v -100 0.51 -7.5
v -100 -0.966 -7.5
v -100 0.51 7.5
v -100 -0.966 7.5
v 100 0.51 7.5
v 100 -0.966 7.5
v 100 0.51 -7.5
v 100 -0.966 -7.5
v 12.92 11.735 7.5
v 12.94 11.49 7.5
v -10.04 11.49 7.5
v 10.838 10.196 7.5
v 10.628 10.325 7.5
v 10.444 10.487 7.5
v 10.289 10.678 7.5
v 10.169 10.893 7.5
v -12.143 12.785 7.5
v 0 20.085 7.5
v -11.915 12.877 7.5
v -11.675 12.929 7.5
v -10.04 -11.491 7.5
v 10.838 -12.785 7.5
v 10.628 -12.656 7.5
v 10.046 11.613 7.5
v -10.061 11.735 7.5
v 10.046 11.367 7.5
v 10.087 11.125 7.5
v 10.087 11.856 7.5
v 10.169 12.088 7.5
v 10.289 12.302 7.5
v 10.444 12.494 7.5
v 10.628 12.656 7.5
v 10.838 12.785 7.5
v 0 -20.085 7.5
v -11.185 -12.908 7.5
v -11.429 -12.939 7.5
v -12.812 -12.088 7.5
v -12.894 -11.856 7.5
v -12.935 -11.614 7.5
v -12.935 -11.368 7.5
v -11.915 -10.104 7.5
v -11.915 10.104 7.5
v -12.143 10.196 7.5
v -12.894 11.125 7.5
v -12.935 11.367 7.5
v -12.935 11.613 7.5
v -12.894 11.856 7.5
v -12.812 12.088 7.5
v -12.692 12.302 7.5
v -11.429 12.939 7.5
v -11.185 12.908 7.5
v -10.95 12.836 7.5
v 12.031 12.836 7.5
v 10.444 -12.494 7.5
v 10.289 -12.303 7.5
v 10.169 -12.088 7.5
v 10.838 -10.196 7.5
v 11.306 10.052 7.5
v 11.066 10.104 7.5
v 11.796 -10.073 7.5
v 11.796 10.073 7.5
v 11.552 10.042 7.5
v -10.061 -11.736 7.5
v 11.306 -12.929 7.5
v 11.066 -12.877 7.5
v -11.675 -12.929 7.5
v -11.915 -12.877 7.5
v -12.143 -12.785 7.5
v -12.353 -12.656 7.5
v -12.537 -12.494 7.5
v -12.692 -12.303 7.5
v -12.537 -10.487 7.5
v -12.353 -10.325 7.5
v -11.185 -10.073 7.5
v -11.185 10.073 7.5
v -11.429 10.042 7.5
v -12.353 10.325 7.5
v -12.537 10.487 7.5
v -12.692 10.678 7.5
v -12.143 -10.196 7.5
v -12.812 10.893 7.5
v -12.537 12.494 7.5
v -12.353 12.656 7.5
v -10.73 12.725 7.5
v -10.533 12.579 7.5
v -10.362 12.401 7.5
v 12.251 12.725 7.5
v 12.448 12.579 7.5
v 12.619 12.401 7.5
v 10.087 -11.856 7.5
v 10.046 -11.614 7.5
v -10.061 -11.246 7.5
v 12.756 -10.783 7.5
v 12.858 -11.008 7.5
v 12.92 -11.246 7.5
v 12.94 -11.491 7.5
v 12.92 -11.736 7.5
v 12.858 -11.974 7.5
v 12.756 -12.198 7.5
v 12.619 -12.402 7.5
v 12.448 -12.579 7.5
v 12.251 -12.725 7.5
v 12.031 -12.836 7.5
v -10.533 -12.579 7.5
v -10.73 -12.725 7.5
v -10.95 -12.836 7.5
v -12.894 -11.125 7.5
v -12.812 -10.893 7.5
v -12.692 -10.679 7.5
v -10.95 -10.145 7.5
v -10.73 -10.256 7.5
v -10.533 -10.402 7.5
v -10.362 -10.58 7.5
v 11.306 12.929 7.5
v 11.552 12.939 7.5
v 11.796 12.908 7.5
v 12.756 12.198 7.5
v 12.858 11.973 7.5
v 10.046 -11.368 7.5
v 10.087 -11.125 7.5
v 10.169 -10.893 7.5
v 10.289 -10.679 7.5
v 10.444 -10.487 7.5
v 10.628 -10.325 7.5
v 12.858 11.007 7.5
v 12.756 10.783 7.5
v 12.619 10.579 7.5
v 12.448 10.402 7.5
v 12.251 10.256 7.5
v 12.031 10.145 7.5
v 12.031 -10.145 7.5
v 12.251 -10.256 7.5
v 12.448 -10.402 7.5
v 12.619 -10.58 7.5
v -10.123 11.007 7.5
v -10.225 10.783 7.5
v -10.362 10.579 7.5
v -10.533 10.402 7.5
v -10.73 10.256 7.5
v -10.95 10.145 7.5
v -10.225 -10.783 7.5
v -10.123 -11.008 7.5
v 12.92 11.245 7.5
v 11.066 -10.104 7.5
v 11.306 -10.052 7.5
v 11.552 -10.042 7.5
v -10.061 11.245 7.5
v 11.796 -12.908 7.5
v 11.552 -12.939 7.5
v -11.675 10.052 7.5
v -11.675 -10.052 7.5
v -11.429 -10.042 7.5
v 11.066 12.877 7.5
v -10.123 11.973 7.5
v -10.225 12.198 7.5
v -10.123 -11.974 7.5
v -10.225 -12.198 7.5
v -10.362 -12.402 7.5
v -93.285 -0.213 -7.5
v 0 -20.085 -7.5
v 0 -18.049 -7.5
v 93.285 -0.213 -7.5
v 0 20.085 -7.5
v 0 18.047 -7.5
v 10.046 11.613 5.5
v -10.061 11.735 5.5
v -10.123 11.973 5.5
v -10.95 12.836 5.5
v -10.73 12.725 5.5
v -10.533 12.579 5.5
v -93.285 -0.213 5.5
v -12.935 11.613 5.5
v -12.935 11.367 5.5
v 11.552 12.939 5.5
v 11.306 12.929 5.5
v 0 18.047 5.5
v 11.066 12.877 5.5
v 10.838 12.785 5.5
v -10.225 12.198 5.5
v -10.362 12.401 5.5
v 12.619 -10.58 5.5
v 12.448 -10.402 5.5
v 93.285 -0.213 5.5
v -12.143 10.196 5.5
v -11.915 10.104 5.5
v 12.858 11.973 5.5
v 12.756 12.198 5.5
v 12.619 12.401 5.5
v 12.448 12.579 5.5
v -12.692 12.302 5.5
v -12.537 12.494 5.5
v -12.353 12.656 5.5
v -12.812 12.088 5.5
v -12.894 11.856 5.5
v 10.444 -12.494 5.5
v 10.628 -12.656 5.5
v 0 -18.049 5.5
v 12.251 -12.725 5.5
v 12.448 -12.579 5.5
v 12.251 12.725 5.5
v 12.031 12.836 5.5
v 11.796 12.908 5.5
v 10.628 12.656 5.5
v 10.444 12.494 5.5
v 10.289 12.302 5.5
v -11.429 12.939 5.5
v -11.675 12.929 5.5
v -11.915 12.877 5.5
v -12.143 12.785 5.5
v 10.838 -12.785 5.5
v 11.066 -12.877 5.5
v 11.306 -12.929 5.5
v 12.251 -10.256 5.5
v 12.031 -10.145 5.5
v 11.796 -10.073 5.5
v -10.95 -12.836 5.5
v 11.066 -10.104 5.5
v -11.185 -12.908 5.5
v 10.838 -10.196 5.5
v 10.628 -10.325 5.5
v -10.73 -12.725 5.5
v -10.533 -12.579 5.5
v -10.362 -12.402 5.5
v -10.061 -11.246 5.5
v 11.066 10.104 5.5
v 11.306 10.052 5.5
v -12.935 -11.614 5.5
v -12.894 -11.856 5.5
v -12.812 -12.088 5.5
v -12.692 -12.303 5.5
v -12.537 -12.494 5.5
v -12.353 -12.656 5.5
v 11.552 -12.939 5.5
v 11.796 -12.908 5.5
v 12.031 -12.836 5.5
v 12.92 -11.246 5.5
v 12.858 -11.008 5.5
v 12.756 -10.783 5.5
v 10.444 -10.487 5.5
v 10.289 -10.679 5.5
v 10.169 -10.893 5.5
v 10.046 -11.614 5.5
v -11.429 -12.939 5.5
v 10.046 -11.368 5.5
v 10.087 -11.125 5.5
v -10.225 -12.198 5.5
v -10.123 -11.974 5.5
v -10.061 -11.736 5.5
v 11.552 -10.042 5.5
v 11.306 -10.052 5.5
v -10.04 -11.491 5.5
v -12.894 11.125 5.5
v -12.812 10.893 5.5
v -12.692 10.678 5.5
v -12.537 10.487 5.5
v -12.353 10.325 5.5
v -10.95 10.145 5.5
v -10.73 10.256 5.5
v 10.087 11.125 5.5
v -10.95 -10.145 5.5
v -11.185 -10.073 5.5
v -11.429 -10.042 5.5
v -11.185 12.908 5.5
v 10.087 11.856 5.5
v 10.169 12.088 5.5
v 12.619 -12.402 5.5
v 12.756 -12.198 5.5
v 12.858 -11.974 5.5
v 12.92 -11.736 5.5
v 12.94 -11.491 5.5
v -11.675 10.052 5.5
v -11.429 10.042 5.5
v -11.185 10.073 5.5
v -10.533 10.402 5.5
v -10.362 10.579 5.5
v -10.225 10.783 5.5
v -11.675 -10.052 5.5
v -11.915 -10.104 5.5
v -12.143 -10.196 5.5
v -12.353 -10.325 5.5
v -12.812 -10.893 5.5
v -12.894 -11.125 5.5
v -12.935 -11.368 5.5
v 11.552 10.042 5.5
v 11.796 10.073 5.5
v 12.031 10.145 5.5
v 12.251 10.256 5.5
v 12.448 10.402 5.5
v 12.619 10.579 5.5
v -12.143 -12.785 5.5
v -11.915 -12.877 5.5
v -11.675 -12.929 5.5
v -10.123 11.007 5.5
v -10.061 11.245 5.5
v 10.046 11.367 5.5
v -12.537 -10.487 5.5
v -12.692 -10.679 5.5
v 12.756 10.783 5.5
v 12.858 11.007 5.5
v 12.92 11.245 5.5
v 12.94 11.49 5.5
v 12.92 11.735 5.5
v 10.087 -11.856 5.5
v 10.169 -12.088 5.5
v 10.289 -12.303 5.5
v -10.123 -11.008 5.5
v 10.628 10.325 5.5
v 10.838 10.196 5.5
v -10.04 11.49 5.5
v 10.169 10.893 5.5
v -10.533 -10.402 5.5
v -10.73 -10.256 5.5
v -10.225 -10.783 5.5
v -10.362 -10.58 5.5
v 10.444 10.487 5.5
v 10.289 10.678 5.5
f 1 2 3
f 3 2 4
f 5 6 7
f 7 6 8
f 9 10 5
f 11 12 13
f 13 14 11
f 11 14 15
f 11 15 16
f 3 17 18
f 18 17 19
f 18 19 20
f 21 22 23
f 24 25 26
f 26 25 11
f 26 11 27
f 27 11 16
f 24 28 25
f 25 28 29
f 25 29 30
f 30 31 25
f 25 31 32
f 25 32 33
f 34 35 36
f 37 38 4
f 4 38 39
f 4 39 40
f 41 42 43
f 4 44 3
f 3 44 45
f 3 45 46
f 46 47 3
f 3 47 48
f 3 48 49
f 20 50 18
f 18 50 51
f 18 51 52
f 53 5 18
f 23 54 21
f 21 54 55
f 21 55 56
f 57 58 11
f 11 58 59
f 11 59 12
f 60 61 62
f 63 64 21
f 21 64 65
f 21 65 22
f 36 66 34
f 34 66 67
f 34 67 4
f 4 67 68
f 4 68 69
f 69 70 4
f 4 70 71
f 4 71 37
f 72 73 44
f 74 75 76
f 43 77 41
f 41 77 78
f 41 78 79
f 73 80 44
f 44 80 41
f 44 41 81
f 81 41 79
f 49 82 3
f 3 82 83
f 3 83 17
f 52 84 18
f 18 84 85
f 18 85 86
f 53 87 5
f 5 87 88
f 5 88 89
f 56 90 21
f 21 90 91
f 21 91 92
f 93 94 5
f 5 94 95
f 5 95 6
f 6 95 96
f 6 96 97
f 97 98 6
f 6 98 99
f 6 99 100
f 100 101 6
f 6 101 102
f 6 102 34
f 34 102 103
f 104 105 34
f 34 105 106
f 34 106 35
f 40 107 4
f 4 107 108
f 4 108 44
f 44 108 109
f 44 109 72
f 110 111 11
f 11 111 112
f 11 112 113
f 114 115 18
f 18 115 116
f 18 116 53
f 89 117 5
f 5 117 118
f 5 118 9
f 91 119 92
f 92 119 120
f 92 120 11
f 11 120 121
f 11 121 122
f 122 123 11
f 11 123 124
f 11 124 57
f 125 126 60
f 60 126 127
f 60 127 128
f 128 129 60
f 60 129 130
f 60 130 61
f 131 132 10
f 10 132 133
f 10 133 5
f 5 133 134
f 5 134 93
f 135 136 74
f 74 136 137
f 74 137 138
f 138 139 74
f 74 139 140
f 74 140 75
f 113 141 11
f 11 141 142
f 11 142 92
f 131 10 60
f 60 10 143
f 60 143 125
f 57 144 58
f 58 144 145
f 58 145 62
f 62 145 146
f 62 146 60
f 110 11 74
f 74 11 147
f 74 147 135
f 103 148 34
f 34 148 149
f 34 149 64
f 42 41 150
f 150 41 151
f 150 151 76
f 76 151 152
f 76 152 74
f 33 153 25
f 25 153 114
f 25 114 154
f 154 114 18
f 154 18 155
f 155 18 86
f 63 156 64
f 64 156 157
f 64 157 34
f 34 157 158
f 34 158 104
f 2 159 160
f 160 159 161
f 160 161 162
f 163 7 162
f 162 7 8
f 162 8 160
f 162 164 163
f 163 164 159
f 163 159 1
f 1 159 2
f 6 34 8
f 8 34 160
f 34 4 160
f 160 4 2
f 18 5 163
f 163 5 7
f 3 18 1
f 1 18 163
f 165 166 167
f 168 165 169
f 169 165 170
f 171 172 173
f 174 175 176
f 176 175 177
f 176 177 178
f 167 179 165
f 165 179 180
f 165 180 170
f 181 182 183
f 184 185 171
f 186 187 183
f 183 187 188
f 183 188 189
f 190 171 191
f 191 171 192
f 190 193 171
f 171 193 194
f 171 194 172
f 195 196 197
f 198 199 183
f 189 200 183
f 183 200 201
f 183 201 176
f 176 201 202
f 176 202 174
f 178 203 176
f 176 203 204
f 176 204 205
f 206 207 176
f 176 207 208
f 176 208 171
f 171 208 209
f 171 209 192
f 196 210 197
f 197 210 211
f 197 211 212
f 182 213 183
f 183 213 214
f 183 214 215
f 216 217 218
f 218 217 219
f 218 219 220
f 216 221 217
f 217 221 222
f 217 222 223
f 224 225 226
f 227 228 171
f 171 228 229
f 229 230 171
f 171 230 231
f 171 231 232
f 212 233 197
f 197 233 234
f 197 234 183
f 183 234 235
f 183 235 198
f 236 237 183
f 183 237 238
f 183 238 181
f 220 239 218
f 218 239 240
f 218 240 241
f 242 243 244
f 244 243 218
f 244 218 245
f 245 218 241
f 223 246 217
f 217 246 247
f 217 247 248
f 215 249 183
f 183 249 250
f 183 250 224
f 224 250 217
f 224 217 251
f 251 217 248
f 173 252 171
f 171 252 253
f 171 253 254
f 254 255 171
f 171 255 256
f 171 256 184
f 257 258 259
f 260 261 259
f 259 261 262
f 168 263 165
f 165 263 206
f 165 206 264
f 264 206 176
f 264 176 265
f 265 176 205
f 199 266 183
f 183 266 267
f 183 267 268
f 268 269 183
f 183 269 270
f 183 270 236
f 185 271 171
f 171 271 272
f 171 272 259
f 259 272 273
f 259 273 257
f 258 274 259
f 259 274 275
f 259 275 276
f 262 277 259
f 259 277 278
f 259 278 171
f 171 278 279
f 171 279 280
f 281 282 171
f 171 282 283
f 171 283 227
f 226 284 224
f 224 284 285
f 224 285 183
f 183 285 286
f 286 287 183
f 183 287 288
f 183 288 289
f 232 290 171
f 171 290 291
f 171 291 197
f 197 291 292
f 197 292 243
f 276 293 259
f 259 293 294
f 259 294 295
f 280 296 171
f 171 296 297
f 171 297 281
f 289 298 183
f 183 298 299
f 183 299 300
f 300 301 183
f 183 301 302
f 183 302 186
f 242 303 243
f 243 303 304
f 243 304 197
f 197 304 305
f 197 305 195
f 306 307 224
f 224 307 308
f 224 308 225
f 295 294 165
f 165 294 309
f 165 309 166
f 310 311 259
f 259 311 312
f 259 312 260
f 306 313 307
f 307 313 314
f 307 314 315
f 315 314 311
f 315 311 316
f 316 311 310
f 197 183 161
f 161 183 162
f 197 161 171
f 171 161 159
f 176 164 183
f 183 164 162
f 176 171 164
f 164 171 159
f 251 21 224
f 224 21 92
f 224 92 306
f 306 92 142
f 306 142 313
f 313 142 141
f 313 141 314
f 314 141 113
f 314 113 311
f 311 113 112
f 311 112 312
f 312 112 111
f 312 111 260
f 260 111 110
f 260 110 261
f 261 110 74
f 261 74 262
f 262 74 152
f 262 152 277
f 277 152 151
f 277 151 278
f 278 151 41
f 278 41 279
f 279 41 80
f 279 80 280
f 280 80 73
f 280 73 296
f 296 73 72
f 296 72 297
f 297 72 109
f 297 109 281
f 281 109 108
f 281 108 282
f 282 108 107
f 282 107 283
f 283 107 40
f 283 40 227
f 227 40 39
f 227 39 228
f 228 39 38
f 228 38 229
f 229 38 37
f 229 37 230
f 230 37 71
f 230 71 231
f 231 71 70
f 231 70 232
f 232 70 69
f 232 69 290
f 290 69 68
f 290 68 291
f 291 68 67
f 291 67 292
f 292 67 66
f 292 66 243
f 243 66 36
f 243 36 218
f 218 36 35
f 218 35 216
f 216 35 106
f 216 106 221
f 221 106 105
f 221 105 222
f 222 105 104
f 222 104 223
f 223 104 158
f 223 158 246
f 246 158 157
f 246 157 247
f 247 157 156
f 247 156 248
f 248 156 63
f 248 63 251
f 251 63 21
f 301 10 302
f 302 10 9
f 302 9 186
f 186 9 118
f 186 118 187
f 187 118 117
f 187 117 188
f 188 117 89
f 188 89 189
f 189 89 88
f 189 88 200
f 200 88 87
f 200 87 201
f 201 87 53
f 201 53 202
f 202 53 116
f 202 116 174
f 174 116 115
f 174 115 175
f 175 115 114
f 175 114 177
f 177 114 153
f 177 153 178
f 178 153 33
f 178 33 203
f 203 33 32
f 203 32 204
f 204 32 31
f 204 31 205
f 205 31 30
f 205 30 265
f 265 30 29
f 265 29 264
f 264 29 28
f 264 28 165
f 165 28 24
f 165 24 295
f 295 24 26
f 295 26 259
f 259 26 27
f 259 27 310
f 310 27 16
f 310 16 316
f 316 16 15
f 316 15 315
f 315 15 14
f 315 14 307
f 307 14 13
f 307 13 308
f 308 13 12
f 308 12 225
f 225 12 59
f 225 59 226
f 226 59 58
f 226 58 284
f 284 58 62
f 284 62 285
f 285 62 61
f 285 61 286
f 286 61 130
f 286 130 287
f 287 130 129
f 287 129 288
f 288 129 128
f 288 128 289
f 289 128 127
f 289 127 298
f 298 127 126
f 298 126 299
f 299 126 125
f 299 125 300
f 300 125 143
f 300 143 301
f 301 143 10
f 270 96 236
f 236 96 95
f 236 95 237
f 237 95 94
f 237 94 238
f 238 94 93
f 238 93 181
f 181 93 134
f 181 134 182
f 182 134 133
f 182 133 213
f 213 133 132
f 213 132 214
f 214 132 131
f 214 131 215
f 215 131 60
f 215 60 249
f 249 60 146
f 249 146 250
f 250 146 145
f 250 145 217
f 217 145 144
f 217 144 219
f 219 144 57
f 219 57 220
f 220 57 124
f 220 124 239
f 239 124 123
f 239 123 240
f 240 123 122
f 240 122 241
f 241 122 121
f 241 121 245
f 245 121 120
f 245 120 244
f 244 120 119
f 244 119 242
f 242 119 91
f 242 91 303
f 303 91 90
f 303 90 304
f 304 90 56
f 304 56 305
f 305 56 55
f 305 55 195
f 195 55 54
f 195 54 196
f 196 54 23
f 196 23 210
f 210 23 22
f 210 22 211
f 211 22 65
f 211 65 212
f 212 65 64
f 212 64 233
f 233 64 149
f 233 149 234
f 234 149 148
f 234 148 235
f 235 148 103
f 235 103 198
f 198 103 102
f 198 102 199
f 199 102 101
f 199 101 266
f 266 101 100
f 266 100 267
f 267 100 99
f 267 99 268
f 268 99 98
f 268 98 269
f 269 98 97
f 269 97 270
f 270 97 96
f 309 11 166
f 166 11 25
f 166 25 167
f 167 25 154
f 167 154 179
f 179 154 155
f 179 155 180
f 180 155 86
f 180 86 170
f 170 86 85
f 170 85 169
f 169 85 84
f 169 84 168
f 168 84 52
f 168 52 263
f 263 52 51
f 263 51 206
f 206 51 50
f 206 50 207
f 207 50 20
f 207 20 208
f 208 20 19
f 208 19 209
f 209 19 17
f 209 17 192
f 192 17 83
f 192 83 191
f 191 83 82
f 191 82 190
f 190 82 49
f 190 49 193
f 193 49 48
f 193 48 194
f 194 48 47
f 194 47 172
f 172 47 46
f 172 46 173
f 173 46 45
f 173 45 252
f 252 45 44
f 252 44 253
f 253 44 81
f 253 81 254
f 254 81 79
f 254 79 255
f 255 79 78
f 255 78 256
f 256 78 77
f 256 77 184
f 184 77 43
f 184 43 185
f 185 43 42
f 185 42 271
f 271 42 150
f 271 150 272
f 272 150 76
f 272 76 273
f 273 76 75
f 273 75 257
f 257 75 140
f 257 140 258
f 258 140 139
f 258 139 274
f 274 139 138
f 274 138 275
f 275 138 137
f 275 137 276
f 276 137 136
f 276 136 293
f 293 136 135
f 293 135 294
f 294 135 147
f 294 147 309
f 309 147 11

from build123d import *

# Parameters (mm, degrees)
SKETCH1_W              = 200
SKETCH1_H              = 50
BOSS_EXTRUDE1_DEPTH    = 7.5
CUT_EXTRUDE1_DEPTH     = 105.16333328
SHELL2_T               = -2
F_20_0MM_DOWEL_HOLE1_D = 2.9


with BuildPart() as part:
    # Sketch1 → Boss-Extrude1 (new, symmetric)
    with BuildSketch(Plane.XY):
        Rectangle(SKETCH1_W, SKETCH1_H)
    extrude(amount=BOSS_EXTRUDE1_DEPTH, both=True)

    # Sketch15 → Cut-Extrude1 (cut, through all)
    with BuildSketch(Plane(origin=(0, 0, -7.5), x_dir=(-1, 0, 0), z_dir=(0, 0, -1))):
        Polygon((-100.000000026, 0.510192391), (-100, 25), (100, 25), (100.000000026, 0.510192391), (0, 20.08555215), align=None)
        Polygon((-100.000000029, -0.965448702), (-100, -25), (100, -25), (100, -0.965448702), (0, -20.08535521), align=None)
    extrude(amount=-CUT_EXTRUDE1_DEPTH, mode=Mode.SUBTRACT)

    # Shell2
    shell2_openings = [part.faces().sort_by_distance(p)[0] for p in [
        (4e-09, -0.078500046, -7.5),
    ]]
    offset(amount=SHELL2_T, openings=shell2_openings)

    # Ø20.0mm Dowel Hole1 (through all)
    with Locations(Plane.XY.offset(7.5)):
        with Locations((-11.490485194, 11.490485194), (11.490485194, -11.490485194), (11.490485194, 11.490485194), (-11.490485194, -11.490485194)):
            Hole(F_20_0MM_DOWEL_HOLE1_D / 2)


solid = part.part
